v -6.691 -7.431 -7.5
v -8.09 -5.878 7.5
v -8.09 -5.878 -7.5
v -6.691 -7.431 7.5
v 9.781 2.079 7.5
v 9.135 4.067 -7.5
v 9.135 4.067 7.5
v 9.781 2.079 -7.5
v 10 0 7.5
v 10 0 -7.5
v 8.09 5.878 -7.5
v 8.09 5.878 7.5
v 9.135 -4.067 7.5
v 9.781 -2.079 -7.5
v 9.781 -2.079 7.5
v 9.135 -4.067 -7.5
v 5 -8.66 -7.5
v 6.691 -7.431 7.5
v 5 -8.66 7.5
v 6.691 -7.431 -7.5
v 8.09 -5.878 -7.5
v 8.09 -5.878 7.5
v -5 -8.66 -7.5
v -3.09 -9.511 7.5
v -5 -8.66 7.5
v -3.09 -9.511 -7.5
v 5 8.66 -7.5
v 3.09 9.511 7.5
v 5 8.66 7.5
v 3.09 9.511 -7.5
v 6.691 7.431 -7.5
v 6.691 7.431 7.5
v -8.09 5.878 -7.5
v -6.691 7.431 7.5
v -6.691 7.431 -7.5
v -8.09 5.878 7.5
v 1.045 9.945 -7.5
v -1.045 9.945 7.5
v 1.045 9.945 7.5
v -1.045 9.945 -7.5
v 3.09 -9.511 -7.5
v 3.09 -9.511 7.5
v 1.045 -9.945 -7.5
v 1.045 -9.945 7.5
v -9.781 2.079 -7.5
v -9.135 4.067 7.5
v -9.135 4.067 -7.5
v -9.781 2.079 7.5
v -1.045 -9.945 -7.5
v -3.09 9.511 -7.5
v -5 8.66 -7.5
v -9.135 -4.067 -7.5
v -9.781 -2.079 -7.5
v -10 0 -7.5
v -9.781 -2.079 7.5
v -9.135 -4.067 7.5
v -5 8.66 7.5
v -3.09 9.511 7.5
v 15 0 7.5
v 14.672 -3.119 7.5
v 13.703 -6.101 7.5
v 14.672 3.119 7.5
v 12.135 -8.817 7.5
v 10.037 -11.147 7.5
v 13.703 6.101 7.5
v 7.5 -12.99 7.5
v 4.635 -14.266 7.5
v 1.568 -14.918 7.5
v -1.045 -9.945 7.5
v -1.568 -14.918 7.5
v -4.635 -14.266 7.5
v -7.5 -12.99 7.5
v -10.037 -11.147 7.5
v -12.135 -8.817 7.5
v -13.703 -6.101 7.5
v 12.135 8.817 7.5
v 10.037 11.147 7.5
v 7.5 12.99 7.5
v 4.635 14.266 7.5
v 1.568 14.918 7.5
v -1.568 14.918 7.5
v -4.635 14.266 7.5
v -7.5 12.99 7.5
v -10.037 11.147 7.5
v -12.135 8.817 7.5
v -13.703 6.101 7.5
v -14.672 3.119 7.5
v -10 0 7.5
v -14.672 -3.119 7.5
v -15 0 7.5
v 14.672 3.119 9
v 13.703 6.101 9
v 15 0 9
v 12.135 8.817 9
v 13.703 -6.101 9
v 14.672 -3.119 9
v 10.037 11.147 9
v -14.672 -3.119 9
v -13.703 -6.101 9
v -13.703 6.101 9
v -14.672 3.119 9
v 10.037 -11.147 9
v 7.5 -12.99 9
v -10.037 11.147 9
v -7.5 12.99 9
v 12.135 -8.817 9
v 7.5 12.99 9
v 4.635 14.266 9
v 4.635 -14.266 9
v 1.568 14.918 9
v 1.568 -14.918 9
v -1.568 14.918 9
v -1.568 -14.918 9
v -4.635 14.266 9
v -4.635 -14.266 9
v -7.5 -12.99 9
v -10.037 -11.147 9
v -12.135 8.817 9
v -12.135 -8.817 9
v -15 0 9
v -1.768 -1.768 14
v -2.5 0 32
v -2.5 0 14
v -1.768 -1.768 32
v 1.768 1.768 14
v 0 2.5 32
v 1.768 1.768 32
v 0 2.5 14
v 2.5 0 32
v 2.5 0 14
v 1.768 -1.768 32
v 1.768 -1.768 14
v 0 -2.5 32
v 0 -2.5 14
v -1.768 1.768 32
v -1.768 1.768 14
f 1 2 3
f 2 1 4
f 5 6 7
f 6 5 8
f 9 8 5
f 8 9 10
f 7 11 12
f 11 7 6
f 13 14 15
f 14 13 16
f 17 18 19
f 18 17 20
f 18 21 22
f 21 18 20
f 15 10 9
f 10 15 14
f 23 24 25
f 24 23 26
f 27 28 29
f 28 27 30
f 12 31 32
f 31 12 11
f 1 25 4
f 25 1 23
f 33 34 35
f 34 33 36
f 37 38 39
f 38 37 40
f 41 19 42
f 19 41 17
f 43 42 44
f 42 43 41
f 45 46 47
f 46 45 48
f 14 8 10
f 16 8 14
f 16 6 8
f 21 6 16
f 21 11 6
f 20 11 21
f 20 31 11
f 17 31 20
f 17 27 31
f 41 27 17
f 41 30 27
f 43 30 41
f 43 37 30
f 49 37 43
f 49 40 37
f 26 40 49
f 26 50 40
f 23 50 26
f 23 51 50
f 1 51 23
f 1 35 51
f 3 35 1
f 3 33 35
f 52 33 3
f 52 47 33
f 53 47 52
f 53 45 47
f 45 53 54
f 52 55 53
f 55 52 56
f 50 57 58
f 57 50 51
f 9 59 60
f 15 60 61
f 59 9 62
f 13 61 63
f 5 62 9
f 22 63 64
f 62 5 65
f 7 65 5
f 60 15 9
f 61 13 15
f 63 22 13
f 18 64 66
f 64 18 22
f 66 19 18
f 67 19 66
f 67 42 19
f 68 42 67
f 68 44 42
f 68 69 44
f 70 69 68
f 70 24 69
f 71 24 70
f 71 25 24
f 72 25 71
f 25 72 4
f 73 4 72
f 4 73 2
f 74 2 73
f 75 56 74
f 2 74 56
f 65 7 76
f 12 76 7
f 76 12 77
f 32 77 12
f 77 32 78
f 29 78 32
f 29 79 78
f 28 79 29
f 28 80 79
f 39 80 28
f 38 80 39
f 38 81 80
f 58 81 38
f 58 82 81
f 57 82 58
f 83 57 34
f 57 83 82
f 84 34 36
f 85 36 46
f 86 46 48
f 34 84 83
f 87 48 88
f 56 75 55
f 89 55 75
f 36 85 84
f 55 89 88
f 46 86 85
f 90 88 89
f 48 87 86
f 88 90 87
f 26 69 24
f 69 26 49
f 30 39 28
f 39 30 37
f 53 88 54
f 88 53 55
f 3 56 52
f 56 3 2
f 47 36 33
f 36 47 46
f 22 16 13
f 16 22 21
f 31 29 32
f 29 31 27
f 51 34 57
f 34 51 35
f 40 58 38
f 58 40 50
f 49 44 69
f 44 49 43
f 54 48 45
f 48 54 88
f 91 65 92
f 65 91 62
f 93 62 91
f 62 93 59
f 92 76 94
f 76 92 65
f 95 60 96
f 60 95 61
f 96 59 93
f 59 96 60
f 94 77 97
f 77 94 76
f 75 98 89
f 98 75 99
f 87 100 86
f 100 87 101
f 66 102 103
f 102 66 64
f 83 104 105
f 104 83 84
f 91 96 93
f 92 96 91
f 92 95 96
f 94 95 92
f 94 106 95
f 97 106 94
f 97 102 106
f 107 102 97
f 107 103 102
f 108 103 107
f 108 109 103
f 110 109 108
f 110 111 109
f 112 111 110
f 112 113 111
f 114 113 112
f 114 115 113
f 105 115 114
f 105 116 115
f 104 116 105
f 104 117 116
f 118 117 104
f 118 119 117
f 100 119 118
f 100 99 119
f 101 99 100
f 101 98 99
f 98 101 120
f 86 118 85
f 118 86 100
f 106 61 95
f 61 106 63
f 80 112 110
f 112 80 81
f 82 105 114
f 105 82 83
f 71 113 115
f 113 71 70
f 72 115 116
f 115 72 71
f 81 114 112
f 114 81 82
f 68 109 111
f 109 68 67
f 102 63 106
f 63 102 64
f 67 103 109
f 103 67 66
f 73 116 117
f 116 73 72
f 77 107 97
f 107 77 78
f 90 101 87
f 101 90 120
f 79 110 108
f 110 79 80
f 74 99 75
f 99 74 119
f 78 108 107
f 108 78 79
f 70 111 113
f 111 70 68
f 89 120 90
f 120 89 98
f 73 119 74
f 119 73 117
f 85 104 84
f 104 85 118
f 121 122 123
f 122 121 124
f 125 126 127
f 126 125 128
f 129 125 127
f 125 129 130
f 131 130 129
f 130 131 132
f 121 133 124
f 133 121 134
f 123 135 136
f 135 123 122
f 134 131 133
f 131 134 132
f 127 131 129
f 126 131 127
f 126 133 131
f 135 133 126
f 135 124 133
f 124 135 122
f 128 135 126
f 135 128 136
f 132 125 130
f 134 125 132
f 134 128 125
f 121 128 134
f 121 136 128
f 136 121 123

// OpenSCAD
// Parameters for the central cylinder
cylinder_diameter = 20; // Diameter of the cylinder
cylinder_height = 15;   // Height of the cylinder (increased to match the original model)

// Central cylinder
module central_cylinder() {
    cylinder(h = cylinder_height, d = cylinder_diameter, center = true);
}

// Render the central cylinder
central_cylinder();

// Parameters for the flange plate
flange_plate_diameter = 30; // Diameter of the flange plate
flange_plate_thickness = 1.5; // Thickness of the flange plate (reduced to match the original model)

// Flange plate
module flange_plate() {
    cylinder(h = flange_plate_thickness, d = flange_plate_diameter, center = true);
}

// Render the flange plate
translate([0, 0, cylinder_height / 2 + flange_plate_thickness / 2]) flange_plate();

// Parameters for the nut
nut_diameter = 10; // Diameter of the nut
nut_thickness = 5; // Thickness of the nut
nut_hex_size = 6;  // Size of the hexagonal profile (reduced to match the original model)

// Nut
module nut() {
    rotate([0, 0, 30]) {
        for (i = [0:5]) {
            rotate([0, 0, i * 60]) {
                translate([nut_hex_size / 2, 0, 0]) {
                    square([nut_hex_size, nut_thickness], center = true);
                }
            }
        }
    }
}

// Render the nut
translate([0, 0, cylinder_height / 2 + flange_plate_thickness + nut_thickness / 2]) nut();

// Parameters for the bolt
bolt_diameter = 5; // Diameter of the bolt
bolt_length = 18;  // Length of the bolt (increased to match the original model)

// Bolt
module bolt() {
    cylinder(h = bolt_length, d = bolt_diameter, center = true);
}

// Render the bolt
translate([0, 0, cylinder_height / 2 + flange_plate_thickness + nut_thickness + bolt_length / 2]) bolt();
